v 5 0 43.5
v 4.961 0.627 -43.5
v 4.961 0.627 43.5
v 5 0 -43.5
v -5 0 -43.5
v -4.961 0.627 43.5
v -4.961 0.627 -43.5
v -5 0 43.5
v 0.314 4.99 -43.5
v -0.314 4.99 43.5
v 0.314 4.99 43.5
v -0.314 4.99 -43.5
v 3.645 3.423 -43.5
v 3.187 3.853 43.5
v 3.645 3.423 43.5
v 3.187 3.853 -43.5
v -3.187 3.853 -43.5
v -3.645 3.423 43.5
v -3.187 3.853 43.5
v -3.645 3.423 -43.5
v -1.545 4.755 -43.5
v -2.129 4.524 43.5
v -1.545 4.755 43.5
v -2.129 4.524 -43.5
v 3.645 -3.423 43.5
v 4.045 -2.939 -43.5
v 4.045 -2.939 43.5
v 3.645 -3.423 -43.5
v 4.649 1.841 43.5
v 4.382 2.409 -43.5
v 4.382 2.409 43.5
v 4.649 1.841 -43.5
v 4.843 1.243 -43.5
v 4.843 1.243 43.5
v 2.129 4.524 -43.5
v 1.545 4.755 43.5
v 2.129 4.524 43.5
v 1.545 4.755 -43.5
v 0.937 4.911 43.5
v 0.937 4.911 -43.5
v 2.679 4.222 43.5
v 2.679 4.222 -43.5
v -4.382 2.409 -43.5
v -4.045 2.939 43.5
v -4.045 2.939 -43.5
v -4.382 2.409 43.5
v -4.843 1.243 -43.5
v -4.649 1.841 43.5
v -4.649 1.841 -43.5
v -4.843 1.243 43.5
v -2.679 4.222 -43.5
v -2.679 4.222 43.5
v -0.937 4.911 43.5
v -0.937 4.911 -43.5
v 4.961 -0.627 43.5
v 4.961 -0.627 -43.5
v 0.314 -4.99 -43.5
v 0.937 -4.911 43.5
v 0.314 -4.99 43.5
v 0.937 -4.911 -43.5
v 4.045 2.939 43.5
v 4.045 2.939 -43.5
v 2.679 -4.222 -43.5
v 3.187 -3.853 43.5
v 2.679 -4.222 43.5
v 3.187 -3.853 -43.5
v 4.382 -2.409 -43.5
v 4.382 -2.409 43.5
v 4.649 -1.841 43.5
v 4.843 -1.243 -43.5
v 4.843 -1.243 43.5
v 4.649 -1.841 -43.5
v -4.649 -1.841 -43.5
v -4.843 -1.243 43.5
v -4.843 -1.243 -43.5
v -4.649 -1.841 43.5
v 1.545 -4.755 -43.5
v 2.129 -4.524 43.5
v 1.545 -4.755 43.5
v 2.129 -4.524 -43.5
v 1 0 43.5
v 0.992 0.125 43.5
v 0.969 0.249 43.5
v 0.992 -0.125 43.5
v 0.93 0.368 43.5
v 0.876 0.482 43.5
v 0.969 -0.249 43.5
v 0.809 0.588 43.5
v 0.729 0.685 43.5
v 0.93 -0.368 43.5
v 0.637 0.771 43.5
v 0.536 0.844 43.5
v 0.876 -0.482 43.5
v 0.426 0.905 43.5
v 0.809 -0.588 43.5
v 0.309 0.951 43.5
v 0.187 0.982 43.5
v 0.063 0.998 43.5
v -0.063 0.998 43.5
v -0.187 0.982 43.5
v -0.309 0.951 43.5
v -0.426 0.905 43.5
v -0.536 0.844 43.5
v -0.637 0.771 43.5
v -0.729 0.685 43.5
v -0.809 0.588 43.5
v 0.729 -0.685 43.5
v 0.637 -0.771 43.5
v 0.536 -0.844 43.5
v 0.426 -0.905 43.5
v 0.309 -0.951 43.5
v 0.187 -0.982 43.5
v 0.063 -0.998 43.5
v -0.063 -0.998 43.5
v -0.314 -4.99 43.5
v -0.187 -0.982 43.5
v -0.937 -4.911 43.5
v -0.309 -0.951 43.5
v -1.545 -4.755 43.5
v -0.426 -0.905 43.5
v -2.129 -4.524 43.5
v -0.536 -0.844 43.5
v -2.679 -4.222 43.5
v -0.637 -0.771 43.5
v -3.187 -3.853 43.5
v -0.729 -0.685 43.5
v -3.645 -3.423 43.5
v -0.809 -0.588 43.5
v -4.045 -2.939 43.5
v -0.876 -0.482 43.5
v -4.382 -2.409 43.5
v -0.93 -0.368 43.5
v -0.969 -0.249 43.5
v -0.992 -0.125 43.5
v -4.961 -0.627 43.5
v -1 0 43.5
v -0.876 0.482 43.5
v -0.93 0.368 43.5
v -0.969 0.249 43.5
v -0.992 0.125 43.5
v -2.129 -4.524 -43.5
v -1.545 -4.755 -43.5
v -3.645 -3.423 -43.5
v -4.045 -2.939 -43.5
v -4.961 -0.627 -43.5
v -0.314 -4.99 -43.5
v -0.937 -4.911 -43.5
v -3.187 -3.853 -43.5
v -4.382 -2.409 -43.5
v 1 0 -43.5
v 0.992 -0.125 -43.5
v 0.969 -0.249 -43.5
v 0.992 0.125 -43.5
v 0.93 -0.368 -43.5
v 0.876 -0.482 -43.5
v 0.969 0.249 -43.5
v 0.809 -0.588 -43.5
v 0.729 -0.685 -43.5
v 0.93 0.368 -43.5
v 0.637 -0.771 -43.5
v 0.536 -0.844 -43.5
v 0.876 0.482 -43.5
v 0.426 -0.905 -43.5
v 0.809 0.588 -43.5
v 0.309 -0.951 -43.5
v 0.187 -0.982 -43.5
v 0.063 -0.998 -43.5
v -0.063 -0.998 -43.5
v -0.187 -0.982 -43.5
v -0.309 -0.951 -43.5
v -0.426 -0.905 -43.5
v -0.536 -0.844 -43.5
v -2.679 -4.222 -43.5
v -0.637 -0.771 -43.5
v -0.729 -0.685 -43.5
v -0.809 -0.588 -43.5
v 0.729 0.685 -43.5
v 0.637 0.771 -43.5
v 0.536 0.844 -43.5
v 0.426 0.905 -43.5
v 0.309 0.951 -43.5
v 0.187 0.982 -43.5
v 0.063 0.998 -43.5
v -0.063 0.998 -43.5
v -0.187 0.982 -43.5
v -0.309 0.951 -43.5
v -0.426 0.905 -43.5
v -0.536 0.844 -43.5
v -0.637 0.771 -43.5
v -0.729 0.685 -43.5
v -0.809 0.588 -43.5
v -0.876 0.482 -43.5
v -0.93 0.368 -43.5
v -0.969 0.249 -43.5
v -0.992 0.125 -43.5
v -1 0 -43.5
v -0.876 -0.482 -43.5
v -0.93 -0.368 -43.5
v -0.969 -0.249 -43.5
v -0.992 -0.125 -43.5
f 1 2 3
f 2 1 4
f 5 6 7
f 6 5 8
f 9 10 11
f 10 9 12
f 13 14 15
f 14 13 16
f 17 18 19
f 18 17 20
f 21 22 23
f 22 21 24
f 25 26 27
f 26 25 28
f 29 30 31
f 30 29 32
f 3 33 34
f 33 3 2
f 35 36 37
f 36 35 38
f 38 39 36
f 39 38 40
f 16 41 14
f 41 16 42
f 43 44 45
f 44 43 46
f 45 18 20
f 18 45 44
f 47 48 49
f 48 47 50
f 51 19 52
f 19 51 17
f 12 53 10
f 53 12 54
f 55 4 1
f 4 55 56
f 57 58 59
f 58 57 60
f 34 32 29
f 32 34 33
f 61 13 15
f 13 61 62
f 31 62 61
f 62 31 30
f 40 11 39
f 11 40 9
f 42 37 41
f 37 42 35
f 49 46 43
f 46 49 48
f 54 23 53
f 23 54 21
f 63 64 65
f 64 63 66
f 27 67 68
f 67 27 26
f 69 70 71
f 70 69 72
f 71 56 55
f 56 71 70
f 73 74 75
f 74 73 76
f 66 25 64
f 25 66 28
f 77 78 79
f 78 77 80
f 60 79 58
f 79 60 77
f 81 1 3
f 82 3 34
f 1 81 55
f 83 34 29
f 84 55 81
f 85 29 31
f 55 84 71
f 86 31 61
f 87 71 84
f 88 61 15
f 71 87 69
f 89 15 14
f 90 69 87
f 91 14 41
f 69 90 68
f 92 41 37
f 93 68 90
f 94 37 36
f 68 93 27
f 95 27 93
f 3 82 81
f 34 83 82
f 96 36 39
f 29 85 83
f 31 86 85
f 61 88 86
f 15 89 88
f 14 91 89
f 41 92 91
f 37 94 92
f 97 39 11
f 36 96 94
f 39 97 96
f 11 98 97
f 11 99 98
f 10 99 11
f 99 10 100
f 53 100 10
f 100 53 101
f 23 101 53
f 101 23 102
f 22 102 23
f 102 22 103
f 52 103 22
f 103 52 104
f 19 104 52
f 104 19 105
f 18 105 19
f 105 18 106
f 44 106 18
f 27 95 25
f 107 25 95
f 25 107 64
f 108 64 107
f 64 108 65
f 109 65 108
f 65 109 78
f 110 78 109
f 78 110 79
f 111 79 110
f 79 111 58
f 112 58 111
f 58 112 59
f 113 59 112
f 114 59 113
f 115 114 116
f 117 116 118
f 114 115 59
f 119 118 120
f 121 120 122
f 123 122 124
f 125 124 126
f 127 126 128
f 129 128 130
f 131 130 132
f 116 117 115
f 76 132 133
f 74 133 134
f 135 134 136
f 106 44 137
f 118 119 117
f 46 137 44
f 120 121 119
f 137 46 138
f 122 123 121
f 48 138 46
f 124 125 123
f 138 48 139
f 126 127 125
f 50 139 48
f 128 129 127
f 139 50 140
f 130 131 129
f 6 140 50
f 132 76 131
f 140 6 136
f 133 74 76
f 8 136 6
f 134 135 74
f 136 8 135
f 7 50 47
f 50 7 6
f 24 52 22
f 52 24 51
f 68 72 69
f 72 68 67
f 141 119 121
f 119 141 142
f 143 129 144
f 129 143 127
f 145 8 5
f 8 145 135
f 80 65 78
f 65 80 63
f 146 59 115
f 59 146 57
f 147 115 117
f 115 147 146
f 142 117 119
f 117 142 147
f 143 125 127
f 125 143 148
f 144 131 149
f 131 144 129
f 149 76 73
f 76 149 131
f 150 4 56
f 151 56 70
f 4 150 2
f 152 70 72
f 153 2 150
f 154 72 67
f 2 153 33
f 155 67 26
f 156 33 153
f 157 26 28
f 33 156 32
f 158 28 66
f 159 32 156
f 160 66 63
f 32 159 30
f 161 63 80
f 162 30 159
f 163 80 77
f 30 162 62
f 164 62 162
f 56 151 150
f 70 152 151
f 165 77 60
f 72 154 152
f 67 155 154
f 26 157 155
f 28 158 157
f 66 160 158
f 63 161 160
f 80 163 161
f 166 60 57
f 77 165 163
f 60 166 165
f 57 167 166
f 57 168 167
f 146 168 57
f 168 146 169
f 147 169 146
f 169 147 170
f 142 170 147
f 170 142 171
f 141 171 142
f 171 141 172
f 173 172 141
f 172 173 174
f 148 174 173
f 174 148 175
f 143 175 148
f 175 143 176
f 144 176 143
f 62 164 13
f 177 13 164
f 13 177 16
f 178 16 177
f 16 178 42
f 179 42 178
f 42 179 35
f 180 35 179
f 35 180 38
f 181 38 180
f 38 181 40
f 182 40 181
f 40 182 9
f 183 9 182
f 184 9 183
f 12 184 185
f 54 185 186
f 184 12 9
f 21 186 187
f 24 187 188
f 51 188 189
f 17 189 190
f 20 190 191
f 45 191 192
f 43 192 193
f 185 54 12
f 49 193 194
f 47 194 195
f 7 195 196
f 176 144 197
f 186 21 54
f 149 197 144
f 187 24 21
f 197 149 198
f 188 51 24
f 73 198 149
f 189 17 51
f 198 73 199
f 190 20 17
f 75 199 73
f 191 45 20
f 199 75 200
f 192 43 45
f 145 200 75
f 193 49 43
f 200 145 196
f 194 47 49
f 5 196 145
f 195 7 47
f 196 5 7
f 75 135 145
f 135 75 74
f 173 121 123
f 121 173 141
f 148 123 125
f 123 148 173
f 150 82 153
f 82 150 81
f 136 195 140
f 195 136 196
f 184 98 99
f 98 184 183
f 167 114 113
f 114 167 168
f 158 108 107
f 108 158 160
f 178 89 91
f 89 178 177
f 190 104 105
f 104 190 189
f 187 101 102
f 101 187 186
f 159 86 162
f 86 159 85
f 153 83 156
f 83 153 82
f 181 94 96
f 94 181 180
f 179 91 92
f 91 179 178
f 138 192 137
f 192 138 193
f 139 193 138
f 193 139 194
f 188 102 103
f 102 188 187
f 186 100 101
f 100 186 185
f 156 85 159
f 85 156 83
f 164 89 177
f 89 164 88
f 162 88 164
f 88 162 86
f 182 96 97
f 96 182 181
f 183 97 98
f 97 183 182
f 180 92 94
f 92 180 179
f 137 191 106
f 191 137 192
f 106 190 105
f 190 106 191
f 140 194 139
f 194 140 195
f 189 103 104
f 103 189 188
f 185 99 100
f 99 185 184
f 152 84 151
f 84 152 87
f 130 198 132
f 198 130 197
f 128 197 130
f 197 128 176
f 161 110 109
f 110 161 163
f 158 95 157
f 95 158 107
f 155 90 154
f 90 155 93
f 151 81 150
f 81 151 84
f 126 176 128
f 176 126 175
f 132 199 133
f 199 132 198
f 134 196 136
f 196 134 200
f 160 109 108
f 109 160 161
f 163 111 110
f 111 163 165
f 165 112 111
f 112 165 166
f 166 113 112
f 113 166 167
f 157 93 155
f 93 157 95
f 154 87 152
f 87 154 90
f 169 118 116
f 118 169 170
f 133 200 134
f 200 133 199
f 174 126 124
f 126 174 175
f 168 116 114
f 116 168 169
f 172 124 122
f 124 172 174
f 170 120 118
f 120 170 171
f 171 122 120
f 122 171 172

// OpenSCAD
$fn = 50;


difference() {
	union() {
		translate(v = [0, 0, -43.5000000000]) {
			cylinder(h = 87, r = 5.0000000000);
		}
	}
	union() {
		translate(v = [0, 0, -100.0000000000]) {
			cylinder(h = 200, r = 1.0000000000);
		}
	}
}
